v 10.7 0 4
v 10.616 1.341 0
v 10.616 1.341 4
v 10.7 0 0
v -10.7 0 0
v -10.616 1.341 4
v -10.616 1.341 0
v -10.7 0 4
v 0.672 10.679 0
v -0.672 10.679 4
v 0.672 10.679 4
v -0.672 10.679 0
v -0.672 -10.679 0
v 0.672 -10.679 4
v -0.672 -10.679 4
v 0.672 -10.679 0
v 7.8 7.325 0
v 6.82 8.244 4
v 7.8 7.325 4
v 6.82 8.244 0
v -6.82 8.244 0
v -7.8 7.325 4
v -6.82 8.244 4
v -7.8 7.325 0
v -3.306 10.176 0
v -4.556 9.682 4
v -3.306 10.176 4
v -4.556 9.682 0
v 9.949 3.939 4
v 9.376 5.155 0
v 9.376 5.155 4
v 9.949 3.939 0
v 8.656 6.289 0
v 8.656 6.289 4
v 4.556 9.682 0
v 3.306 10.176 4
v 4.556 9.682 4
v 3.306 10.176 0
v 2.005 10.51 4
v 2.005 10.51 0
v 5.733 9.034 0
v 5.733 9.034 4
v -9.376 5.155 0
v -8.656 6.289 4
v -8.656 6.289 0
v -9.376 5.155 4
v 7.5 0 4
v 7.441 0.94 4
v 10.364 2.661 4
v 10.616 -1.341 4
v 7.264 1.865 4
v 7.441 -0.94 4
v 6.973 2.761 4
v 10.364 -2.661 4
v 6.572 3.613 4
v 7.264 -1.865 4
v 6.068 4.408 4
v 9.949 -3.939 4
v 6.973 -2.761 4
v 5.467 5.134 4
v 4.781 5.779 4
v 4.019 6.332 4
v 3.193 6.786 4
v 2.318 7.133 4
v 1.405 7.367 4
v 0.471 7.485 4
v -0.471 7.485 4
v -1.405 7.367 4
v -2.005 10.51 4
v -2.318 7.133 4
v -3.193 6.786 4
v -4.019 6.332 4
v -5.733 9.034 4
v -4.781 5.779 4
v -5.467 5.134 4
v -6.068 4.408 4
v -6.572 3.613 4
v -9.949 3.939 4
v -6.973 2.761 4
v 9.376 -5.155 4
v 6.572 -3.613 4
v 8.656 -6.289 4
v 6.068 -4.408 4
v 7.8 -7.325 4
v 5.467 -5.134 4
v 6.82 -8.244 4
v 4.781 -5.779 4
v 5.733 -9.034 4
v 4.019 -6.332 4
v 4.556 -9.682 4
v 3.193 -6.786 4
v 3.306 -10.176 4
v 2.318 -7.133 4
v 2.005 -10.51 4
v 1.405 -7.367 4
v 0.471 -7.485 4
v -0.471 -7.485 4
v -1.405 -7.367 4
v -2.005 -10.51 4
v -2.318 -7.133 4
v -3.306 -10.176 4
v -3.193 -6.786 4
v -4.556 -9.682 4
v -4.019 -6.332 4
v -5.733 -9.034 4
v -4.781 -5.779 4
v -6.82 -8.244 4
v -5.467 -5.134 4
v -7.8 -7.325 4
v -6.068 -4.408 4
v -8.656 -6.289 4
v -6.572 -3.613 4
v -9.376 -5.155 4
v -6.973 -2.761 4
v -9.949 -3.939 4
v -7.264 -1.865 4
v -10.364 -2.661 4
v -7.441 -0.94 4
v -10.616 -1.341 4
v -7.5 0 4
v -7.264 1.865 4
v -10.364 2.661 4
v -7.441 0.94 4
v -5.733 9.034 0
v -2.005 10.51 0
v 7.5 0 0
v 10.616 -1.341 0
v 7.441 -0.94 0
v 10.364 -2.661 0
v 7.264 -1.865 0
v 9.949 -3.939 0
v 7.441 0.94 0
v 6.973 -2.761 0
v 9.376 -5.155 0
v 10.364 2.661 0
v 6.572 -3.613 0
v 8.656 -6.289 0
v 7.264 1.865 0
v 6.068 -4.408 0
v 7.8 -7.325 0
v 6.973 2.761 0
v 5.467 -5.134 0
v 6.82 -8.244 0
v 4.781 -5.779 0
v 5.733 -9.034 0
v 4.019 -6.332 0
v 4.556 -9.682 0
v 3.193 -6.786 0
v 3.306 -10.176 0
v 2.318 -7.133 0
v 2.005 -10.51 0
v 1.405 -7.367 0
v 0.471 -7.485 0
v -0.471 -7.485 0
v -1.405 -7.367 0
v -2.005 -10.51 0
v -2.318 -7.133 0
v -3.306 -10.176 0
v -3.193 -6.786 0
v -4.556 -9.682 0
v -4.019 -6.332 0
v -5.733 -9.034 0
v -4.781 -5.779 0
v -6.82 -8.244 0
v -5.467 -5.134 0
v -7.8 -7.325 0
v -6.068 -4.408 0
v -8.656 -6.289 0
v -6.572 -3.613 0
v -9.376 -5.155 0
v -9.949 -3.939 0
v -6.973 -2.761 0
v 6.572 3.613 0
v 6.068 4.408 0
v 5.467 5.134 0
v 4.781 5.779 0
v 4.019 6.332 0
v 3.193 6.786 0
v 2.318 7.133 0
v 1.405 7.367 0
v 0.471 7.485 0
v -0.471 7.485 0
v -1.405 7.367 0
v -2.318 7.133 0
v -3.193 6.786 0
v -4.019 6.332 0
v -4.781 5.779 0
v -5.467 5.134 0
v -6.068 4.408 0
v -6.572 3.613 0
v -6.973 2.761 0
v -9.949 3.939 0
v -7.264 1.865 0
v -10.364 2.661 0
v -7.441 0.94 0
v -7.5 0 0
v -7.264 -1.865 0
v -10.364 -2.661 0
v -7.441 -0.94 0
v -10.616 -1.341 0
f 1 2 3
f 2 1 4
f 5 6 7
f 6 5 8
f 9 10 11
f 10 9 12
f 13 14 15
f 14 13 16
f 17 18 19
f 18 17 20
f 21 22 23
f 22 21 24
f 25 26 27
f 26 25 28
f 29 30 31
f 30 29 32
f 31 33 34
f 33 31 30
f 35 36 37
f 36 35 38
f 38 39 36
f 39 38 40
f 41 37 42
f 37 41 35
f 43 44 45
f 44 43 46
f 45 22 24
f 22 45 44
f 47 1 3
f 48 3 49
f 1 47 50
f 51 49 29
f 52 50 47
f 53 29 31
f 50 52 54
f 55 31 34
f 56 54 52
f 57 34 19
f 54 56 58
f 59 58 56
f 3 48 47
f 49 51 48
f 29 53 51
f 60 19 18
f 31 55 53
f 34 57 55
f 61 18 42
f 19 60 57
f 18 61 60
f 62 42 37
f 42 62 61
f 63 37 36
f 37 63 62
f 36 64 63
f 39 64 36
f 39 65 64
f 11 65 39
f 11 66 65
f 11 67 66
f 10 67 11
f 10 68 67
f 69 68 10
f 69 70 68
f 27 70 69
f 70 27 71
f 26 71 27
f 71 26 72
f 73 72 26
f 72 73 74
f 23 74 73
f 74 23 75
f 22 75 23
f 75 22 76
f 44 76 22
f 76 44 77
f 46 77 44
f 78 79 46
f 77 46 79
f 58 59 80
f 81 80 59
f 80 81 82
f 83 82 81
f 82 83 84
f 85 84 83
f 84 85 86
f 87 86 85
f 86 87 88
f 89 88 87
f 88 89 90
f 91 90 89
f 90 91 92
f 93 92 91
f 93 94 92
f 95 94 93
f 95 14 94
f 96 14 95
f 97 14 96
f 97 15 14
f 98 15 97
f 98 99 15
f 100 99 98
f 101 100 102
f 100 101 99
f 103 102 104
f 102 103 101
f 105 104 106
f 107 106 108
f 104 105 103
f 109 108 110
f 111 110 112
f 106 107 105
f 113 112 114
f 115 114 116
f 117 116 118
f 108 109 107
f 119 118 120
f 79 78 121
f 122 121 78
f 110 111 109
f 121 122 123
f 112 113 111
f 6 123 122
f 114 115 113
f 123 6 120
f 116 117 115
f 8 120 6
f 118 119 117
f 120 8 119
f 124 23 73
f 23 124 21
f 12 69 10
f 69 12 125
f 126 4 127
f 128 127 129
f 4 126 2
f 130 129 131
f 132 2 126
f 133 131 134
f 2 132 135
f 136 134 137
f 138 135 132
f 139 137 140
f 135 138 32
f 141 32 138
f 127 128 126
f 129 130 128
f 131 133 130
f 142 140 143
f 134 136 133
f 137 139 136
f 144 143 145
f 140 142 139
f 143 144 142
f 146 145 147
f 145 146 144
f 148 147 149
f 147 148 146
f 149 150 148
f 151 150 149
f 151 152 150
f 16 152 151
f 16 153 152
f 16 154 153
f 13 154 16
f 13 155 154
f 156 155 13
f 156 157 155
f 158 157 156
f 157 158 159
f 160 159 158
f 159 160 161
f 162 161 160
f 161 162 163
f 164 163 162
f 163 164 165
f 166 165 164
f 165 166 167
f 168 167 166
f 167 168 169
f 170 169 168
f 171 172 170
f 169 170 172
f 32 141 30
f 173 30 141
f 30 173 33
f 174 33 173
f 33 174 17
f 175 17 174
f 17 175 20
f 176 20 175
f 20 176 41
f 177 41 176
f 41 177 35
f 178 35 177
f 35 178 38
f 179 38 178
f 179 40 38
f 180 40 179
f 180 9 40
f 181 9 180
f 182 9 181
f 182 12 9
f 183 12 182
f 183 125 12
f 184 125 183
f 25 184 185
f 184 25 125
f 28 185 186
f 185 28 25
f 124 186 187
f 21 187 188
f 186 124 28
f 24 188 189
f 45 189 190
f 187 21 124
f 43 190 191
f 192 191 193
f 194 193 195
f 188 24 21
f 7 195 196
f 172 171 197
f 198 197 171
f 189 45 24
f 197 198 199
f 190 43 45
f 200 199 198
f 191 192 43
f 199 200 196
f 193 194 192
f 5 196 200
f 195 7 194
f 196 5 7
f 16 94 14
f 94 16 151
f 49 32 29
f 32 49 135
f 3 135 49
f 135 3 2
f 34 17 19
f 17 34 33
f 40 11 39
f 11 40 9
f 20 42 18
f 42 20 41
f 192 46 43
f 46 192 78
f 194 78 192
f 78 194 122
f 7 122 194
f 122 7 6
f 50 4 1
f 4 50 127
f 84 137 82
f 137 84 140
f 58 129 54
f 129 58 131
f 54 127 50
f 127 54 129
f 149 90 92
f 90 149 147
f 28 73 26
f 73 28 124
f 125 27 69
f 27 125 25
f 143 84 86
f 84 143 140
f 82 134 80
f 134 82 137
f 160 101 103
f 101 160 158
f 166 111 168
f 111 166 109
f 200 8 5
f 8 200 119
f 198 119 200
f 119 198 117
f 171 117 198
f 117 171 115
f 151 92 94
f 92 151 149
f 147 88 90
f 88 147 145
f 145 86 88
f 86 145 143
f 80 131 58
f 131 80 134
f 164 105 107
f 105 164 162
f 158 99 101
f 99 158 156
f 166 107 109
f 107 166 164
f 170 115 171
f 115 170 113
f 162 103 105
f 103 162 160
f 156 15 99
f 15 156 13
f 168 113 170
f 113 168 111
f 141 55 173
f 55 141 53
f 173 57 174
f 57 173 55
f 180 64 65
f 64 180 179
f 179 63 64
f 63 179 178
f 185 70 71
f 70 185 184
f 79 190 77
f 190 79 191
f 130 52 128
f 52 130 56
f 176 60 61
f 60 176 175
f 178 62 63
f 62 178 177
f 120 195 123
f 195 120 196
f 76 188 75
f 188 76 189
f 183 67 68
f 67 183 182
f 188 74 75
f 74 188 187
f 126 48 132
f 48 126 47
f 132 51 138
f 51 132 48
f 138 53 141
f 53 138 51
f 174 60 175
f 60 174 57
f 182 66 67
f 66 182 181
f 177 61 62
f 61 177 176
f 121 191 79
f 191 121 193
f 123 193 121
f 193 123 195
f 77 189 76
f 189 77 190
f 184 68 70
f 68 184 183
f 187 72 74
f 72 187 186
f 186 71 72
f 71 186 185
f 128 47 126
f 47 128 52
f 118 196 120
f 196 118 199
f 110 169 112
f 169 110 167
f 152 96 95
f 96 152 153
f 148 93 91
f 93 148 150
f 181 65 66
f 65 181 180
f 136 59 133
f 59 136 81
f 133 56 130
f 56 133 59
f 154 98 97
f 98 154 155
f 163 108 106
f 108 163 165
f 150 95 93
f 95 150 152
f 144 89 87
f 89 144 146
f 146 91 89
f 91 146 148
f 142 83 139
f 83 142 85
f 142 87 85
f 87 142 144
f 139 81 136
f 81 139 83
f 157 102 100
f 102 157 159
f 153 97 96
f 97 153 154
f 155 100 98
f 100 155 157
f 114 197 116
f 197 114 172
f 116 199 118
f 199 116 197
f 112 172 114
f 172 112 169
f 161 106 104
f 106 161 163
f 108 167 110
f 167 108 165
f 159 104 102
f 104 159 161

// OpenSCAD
$fn = 50;


difference() {
	union() {
		translate(v = [0, 0, 0]) {
			rotate(a = [0, 0, 0]) {
				cylinder(h = 4, r = 10.7000000000);
			}
		}
	}
	union() {
		translate(v = [0, 0, 0]) {
			rotate(a = [0, 0, 0]) {
				cylinder(h = 4, r = 7.5000000000);
			}
		}
	}
}
